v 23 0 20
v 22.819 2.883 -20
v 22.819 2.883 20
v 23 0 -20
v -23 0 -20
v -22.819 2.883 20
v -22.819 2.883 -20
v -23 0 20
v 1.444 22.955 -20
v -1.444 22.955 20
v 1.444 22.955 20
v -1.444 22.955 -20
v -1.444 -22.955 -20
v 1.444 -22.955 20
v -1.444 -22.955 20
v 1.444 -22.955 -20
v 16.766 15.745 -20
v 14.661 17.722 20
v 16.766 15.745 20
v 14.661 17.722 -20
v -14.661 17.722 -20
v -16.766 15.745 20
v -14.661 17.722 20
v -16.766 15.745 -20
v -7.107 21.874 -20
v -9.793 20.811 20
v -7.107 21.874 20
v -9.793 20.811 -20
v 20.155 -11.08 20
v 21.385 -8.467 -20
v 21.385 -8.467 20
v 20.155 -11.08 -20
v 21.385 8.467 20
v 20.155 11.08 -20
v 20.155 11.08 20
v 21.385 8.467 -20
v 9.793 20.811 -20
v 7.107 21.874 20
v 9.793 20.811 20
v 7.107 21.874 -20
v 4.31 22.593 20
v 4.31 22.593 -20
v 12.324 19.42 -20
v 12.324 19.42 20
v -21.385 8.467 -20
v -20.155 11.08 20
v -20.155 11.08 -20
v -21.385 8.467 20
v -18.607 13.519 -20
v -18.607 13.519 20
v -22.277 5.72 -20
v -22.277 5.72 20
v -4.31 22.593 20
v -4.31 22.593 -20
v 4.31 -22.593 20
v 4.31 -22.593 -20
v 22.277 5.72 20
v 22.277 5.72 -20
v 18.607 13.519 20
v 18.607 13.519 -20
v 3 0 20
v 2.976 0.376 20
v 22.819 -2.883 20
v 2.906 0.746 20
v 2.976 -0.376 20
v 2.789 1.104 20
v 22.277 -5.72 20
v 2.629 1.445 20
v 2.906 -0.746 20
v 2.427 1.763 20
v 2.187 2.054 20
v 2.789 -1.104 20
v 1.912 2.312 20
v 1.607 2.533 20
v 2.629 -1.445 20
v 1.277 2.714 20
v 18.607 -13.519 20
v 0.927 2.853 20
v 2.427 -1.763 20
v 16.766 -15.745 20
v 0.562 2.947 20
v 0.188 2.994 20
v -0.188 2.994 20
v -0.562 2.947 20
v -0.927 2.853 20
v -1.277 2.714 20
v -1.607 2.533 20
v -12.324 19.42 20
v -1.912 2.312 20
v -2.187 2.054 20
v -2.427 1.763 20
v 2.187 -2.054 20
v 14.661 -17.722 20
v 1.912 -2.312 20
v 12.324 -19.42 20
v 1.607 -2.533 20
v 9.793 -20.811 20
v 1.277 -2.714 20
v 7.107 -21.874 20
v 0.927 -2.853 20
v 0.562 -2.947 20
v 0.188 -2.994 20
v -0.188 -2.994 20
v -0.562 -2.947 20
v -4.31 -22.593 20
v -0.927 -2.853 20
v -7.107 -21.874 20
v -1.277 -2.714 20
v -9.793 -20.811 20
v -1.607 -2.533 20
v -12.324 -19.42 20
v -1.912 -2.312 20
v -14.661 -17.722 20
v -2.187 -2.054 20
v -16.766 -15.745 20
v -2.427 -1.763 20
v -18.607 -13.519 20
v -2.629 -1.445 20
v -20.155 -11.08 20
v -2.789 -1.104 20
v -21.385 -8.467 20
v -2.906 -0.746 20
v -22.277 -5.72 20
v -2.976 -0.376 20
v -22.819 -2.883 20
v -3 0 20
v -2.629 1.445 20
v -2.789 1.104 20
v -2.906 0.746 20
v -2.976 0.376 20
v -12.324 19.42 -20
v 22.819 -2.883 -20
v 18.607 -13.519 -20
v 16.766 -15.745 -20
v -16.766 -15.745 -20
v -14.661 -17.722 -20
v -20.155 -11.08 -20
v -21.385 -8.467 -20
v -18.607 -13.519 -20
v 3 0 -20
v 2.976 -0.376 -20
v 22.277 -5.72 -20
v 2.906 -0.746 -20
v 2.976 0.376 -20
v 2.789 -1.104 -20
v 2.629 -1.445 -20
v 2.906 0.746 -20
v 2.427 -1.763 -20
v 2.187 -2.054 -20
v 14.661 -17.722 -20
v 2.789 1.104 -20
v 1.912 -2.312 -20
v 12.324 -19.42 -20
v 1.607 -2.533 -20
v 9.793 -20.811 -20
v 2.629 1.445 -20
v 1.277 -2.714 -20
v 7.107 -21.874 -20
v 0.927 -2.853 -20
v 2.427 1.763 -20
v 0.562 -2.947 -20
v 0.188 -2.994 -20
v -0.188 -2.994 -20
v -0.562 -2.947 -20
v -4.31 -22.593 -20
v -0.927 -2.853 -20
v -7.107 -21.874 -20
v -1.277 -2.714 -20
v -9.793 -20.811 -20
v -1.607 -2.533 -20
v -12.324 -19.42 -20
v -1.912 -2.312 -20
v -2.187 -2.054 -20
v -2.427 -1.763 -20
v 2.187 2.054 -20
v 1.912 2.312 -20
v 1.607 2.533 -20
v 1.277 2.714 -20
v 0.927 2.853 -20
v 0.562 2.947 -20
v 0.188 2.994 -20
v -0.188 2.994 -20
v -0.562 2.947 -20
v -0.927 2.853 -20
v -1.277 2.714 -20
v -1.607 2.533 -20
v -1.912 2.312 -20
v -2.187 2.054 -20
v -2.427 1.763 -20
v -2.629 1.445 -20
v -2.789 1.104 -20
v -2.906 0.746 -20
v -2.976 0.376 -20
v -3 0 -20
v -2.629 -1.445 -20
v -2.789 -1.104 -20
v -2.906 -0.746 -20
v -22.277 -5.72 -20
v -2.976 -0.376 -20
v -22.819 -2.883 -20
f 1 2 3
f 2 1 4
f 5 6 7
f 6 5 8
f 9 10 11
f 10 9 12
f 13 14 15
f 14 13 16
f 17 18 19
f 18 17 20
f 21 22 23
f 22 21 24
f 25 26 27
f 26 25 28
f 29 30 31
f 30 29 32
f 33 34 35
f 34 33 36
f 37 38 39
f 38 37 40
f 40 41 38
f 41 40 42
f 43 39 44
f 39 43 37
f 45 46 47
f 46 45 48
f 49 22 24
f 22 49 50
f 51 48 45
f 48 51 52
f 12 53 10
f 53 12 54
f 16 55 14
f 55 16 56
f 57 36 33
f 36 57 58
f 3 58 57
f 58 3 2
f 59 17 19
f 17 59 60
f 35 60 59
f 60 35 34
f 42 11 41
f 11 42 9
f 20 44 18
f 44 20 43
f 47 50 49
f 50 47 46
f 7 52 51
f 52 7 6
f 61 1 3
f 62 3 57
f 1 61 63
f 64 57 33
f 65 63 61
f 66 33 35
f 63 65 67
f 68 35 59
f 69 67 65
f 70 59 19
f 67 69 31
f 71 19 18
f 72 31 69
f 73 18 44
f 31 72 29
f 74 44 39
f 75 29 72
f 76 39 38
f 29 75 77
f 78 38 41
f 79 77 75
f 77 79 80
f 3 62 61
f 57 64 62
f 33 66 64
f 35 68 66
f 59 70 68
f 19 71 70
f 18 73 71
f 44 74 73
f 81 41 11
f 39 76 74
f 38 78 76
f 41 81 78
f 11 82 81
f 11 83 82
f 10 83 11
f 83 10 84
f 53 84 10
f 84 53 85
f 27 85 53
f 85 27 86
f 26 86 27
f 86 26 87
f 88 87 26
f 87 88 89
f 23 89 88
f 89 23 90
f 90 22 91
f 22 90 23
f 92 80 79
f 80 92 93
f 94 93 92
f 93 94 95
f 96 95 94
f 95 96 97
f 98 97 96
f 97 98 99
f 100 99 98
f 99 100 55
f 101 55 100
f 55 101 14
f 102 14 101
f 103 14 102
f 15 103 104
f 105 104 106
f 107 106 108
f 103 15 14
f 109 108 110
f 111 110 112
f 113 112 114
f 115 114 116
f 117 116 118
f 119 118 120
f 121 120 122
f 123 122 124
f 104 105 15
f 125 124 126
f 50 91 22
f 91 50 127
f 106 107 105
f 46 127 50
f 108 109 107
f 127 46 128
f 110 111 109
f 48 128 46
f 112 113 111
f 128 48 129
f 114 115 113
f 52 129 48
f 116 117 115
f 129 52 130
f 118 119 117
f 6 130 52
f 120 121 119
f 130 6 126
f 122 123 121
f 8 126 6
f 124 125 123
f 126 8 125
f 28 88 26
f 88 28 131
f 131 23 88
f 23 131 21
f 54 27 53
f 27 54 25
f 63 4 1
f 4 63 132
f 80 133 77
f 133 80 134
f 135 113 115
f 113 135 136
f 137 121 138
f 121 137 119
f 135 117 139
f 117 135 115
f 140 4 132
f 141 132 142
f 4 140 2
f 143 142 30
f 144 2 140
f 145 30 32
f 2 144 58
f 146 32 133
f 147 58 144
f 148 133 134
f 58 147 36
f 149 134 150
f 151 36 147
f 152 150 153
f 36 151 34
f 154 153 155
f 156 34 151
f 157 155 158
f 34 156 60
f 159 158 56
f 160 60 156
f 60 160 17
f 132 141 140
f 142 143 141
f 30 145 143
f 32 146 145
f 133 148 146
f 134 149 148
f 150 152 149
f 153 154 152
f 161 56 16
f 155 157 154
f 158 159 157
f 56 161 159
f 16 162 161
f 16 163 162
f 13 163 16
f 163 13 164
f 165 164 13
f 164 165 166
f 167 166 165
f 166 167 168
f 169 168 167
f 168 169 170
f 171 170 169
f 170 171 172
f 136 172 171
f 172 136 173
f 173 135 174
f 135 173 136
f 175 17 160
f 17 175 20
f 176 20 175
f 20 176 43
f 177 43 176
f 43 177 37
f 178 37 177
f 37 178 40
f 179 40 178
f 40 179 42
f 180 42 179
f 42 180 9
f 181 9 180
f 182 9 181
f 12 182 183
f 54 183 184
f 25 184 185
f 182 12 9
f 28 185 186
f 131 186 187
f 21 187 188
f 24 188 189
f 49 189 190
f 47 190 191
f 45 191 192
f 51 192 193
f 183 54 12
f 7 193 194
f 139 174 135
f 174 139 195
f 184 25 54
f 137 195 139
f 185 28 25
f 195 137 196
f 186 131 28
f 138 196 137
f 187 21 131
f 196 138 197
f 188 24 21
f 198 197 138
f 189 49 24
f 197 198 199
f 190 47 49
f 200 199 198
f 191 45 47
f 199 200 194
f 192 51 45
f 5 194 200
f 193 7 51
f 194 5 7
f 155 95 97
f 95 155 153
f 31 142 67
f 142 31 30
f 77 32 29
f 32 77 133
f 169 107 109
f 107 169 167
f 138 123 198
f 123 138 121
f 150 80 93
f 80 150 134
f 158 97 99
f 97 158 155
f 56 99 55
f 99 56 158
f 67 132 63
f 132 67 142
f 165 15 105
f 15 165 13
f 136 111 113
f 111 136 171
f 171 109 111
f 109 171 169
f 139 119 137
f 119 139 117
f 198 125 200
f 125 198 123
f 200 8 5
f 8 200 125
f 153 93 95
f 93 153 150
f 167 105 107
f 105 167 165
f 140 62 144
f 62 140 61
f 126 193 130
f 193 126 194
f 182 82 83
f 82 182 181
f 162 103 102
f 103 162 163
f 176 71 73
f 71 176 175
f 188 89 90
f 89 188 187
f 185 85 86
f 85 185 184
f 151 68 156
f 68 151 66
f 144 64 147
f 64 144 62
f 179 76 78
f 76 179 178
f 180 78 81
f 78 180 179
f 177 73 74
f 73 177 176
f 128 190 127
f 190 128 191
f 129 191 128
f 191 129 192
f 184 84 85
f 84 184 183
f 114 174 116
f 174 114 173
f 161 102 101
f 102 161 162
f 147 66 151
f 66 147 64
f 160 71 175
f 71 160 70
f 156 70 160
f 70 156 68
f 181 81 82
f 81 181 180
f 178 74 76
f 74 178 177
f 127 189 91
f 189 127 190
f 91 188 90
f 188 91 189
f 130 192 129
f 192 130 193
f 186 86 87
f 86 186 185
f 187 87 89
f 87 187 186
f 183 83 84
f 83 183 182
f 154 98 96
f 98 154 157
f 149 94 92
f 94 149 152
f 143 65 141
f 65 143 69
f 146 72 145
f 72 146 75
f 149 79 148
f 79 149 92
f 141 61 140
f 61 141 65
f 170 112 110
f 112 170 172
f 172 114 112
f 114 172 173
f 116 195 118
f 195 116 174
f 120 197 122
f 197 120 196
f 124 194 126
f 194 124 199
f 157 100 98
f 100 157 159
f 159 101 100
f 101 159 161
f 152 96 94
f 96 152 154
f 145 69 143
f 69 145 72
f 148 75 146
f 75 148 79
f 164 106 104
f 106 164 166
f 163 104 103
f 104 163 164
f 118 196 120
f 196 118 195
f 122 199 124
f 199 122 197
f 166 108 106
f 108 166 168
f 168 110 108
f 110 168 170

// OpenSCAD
$fn = 50;


difference() {
	union() {
		translate(v = [0, 0, -20.0000000000]) {
			cylinder(h = 40, r = 23.0000000000);
		}
	}
	union() {
		translate(v = [0, 0, -100.0000000000]) {
			cylinder(h = 200, r = 3.0000000000);
		}
	}
}
